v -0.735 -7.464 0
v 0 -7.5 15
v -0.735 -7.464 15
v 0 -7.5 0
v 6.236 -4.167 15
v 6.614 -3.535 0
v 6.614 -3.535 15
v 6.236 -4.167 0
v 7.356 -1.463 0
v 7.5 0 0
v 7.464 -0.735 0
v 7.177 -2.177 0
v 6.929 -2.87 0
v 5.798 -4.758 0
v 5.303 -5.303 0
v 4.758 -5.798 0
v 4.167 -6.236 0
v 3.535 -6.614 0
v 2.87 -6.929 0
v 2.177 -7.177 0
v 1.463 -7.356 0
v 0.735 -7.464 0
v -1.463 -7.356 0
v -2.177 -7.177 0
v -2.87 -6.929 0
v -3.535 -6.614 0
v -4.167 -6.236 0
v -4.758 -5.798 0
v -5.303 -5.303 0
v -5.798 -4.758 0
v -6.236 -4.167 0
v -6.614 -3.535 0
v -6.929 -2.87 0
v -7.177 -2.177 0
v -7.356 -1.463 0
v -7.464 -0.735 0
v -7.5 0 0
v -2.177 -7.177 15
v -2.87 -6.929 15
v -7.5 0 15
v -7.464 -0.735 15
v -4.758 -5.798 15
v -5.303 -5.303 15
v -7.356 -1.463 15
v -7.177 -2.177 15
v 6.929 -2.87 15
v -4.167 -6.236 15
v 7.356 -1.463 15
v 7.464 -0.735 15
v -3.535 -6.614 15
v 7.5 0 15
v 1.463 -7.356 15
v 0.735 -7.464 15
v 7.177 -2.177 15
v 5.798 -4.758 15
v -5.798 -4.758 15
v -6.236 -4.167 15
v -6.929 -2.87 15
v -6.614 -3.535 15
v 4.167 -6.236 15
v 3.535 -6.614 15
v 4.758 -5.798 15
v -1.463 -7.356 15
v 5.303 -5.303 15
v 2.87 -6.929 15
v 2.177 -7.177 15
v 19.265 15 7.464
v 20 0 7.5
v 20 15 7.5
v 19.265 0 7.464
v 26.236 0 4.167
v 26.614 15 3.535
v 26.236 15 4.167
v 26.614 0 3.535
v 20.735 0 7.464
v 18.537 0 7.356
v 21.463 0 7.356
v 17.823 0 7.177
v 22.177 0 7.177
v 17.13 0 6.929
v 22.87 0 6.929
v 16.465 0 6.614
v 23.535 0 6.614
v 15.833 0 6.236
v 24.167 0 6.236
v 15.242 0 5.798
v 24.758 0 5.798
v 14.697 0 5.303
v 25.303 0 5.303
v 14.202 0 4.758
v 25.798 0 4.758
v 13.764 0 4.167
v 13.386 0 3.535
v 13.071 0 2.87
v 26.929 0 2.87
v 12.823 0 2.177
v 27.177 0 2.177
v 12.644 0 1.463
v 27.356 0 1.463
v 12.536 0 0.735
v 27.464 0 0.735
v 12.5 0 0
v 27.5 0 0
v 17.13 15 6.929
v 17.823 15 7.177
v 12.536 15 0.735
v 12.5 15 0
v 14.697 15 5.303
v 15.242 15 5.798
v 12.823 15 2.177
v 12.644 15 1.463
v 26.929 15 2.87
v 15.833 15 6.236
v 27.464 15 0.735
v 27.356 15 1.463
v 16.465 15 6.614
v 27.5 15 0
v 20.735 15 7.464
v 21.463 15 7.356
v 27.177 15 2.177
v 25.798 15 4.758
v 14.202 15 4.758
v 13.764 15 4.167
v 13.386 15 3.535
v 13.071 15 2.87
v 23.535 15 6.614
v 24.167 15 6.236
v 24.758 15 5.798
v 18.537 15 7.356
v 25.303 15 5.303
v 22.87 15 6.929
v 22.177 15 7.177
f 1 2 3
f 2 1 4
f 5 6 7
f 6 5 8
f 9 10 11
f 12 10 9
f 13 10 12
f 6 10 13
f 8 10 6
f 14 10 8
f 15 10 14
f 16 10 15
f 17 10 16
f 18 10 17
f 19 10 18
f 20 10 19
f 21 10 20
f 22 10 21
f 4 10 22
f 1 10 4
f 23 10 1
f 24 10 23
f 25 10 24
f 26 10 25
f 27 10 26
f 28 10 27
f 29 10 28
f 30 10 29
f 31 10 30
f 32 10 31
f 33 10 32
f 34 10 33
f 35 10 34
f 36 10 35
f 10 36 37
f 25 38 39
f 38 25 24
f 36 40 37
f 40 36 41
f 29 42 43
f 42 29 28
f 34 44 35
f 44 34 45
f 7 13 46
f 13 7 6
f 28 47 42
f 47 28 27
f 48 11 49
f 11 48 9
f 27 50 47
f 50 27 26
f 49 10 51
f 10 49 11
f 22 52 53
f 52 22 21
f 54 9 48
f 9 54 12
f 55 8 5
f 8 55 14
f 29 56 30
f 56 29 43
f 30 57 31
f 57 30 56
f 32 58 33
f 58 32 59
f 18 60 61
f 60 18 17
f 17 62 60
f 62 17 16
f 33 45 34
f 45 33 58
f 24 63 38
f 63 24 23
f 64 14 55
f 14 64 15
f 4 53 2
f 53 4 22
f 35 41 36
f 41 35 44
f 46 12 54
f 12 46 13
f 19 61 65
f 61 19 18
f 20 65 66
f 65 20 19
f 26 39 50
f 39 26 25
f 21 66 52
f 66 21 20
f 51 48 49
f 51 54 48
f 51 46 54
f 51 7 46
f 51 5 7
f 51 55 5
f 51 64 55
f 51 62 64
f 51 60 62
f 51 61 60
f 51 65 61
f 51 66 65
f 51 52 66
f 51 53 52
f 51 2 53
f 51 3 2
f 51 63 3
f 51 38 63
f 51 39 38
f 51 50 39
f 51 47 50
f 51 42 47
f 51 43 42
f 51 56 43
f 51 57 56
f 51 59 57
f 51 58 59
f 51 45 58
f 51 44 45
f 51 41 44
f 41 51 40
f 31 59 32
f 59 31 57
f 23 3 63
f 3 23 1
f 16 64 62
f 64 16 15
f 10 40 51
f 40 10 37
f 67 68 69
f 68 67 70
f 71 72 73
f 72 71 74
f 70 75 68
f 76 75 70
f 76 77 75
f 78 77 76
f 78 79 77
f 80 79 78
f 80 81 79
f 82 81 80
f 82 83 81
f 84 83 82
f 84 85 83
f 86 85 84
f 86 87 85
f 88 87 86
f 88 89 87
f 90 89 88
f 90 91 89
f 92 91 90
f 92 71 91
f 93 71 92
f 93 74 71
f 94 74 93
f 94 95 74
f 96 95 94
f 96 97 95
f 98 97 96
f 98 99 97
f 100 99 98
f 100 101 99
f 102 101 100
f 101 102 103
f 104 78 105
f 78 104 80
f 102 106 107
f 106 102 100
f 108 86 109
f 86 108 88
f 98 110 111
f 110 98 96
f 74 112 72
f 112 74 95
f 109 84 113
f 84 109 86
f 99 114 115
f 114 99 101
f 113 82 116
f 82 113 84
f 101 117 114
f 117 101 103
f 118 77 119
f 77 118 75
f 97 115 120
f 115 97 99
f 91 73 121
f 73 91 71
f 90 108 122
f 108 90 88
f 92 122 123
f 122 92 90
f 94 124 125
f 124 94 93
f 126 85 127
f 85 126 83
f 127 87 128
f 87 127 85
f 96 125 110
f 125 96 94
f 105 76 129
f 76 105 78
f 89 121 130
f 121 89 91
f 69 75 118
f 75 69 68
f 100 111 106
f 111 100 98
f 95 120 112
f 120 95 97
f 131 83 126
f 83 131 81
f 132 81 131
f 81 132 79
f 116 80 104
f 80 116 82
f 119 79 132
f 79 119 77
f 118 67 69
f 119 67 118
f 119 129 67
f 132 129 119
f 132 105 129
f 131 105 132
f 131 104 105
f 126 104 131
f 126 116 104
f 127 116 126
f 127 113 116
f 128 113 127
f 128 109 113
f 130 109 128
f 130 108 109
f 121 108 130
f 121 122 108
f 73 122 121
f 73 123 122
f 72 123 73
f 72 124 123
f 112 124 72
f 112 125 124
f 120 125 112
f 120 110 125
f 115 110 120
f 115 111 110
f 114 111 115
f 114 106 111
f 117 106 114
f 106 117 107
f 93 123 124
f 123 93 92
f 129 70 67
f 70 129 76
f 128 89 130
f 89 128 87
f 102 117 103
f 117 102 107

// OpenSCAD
module model(){
difference(){
    cylinder(d=15,h=15);
    translate([-15/2,0,0])cube([15,15/2,15]);

}
}
model();

translate([20,0,0])rotate([-90,0,0])model();

$fn=64;
